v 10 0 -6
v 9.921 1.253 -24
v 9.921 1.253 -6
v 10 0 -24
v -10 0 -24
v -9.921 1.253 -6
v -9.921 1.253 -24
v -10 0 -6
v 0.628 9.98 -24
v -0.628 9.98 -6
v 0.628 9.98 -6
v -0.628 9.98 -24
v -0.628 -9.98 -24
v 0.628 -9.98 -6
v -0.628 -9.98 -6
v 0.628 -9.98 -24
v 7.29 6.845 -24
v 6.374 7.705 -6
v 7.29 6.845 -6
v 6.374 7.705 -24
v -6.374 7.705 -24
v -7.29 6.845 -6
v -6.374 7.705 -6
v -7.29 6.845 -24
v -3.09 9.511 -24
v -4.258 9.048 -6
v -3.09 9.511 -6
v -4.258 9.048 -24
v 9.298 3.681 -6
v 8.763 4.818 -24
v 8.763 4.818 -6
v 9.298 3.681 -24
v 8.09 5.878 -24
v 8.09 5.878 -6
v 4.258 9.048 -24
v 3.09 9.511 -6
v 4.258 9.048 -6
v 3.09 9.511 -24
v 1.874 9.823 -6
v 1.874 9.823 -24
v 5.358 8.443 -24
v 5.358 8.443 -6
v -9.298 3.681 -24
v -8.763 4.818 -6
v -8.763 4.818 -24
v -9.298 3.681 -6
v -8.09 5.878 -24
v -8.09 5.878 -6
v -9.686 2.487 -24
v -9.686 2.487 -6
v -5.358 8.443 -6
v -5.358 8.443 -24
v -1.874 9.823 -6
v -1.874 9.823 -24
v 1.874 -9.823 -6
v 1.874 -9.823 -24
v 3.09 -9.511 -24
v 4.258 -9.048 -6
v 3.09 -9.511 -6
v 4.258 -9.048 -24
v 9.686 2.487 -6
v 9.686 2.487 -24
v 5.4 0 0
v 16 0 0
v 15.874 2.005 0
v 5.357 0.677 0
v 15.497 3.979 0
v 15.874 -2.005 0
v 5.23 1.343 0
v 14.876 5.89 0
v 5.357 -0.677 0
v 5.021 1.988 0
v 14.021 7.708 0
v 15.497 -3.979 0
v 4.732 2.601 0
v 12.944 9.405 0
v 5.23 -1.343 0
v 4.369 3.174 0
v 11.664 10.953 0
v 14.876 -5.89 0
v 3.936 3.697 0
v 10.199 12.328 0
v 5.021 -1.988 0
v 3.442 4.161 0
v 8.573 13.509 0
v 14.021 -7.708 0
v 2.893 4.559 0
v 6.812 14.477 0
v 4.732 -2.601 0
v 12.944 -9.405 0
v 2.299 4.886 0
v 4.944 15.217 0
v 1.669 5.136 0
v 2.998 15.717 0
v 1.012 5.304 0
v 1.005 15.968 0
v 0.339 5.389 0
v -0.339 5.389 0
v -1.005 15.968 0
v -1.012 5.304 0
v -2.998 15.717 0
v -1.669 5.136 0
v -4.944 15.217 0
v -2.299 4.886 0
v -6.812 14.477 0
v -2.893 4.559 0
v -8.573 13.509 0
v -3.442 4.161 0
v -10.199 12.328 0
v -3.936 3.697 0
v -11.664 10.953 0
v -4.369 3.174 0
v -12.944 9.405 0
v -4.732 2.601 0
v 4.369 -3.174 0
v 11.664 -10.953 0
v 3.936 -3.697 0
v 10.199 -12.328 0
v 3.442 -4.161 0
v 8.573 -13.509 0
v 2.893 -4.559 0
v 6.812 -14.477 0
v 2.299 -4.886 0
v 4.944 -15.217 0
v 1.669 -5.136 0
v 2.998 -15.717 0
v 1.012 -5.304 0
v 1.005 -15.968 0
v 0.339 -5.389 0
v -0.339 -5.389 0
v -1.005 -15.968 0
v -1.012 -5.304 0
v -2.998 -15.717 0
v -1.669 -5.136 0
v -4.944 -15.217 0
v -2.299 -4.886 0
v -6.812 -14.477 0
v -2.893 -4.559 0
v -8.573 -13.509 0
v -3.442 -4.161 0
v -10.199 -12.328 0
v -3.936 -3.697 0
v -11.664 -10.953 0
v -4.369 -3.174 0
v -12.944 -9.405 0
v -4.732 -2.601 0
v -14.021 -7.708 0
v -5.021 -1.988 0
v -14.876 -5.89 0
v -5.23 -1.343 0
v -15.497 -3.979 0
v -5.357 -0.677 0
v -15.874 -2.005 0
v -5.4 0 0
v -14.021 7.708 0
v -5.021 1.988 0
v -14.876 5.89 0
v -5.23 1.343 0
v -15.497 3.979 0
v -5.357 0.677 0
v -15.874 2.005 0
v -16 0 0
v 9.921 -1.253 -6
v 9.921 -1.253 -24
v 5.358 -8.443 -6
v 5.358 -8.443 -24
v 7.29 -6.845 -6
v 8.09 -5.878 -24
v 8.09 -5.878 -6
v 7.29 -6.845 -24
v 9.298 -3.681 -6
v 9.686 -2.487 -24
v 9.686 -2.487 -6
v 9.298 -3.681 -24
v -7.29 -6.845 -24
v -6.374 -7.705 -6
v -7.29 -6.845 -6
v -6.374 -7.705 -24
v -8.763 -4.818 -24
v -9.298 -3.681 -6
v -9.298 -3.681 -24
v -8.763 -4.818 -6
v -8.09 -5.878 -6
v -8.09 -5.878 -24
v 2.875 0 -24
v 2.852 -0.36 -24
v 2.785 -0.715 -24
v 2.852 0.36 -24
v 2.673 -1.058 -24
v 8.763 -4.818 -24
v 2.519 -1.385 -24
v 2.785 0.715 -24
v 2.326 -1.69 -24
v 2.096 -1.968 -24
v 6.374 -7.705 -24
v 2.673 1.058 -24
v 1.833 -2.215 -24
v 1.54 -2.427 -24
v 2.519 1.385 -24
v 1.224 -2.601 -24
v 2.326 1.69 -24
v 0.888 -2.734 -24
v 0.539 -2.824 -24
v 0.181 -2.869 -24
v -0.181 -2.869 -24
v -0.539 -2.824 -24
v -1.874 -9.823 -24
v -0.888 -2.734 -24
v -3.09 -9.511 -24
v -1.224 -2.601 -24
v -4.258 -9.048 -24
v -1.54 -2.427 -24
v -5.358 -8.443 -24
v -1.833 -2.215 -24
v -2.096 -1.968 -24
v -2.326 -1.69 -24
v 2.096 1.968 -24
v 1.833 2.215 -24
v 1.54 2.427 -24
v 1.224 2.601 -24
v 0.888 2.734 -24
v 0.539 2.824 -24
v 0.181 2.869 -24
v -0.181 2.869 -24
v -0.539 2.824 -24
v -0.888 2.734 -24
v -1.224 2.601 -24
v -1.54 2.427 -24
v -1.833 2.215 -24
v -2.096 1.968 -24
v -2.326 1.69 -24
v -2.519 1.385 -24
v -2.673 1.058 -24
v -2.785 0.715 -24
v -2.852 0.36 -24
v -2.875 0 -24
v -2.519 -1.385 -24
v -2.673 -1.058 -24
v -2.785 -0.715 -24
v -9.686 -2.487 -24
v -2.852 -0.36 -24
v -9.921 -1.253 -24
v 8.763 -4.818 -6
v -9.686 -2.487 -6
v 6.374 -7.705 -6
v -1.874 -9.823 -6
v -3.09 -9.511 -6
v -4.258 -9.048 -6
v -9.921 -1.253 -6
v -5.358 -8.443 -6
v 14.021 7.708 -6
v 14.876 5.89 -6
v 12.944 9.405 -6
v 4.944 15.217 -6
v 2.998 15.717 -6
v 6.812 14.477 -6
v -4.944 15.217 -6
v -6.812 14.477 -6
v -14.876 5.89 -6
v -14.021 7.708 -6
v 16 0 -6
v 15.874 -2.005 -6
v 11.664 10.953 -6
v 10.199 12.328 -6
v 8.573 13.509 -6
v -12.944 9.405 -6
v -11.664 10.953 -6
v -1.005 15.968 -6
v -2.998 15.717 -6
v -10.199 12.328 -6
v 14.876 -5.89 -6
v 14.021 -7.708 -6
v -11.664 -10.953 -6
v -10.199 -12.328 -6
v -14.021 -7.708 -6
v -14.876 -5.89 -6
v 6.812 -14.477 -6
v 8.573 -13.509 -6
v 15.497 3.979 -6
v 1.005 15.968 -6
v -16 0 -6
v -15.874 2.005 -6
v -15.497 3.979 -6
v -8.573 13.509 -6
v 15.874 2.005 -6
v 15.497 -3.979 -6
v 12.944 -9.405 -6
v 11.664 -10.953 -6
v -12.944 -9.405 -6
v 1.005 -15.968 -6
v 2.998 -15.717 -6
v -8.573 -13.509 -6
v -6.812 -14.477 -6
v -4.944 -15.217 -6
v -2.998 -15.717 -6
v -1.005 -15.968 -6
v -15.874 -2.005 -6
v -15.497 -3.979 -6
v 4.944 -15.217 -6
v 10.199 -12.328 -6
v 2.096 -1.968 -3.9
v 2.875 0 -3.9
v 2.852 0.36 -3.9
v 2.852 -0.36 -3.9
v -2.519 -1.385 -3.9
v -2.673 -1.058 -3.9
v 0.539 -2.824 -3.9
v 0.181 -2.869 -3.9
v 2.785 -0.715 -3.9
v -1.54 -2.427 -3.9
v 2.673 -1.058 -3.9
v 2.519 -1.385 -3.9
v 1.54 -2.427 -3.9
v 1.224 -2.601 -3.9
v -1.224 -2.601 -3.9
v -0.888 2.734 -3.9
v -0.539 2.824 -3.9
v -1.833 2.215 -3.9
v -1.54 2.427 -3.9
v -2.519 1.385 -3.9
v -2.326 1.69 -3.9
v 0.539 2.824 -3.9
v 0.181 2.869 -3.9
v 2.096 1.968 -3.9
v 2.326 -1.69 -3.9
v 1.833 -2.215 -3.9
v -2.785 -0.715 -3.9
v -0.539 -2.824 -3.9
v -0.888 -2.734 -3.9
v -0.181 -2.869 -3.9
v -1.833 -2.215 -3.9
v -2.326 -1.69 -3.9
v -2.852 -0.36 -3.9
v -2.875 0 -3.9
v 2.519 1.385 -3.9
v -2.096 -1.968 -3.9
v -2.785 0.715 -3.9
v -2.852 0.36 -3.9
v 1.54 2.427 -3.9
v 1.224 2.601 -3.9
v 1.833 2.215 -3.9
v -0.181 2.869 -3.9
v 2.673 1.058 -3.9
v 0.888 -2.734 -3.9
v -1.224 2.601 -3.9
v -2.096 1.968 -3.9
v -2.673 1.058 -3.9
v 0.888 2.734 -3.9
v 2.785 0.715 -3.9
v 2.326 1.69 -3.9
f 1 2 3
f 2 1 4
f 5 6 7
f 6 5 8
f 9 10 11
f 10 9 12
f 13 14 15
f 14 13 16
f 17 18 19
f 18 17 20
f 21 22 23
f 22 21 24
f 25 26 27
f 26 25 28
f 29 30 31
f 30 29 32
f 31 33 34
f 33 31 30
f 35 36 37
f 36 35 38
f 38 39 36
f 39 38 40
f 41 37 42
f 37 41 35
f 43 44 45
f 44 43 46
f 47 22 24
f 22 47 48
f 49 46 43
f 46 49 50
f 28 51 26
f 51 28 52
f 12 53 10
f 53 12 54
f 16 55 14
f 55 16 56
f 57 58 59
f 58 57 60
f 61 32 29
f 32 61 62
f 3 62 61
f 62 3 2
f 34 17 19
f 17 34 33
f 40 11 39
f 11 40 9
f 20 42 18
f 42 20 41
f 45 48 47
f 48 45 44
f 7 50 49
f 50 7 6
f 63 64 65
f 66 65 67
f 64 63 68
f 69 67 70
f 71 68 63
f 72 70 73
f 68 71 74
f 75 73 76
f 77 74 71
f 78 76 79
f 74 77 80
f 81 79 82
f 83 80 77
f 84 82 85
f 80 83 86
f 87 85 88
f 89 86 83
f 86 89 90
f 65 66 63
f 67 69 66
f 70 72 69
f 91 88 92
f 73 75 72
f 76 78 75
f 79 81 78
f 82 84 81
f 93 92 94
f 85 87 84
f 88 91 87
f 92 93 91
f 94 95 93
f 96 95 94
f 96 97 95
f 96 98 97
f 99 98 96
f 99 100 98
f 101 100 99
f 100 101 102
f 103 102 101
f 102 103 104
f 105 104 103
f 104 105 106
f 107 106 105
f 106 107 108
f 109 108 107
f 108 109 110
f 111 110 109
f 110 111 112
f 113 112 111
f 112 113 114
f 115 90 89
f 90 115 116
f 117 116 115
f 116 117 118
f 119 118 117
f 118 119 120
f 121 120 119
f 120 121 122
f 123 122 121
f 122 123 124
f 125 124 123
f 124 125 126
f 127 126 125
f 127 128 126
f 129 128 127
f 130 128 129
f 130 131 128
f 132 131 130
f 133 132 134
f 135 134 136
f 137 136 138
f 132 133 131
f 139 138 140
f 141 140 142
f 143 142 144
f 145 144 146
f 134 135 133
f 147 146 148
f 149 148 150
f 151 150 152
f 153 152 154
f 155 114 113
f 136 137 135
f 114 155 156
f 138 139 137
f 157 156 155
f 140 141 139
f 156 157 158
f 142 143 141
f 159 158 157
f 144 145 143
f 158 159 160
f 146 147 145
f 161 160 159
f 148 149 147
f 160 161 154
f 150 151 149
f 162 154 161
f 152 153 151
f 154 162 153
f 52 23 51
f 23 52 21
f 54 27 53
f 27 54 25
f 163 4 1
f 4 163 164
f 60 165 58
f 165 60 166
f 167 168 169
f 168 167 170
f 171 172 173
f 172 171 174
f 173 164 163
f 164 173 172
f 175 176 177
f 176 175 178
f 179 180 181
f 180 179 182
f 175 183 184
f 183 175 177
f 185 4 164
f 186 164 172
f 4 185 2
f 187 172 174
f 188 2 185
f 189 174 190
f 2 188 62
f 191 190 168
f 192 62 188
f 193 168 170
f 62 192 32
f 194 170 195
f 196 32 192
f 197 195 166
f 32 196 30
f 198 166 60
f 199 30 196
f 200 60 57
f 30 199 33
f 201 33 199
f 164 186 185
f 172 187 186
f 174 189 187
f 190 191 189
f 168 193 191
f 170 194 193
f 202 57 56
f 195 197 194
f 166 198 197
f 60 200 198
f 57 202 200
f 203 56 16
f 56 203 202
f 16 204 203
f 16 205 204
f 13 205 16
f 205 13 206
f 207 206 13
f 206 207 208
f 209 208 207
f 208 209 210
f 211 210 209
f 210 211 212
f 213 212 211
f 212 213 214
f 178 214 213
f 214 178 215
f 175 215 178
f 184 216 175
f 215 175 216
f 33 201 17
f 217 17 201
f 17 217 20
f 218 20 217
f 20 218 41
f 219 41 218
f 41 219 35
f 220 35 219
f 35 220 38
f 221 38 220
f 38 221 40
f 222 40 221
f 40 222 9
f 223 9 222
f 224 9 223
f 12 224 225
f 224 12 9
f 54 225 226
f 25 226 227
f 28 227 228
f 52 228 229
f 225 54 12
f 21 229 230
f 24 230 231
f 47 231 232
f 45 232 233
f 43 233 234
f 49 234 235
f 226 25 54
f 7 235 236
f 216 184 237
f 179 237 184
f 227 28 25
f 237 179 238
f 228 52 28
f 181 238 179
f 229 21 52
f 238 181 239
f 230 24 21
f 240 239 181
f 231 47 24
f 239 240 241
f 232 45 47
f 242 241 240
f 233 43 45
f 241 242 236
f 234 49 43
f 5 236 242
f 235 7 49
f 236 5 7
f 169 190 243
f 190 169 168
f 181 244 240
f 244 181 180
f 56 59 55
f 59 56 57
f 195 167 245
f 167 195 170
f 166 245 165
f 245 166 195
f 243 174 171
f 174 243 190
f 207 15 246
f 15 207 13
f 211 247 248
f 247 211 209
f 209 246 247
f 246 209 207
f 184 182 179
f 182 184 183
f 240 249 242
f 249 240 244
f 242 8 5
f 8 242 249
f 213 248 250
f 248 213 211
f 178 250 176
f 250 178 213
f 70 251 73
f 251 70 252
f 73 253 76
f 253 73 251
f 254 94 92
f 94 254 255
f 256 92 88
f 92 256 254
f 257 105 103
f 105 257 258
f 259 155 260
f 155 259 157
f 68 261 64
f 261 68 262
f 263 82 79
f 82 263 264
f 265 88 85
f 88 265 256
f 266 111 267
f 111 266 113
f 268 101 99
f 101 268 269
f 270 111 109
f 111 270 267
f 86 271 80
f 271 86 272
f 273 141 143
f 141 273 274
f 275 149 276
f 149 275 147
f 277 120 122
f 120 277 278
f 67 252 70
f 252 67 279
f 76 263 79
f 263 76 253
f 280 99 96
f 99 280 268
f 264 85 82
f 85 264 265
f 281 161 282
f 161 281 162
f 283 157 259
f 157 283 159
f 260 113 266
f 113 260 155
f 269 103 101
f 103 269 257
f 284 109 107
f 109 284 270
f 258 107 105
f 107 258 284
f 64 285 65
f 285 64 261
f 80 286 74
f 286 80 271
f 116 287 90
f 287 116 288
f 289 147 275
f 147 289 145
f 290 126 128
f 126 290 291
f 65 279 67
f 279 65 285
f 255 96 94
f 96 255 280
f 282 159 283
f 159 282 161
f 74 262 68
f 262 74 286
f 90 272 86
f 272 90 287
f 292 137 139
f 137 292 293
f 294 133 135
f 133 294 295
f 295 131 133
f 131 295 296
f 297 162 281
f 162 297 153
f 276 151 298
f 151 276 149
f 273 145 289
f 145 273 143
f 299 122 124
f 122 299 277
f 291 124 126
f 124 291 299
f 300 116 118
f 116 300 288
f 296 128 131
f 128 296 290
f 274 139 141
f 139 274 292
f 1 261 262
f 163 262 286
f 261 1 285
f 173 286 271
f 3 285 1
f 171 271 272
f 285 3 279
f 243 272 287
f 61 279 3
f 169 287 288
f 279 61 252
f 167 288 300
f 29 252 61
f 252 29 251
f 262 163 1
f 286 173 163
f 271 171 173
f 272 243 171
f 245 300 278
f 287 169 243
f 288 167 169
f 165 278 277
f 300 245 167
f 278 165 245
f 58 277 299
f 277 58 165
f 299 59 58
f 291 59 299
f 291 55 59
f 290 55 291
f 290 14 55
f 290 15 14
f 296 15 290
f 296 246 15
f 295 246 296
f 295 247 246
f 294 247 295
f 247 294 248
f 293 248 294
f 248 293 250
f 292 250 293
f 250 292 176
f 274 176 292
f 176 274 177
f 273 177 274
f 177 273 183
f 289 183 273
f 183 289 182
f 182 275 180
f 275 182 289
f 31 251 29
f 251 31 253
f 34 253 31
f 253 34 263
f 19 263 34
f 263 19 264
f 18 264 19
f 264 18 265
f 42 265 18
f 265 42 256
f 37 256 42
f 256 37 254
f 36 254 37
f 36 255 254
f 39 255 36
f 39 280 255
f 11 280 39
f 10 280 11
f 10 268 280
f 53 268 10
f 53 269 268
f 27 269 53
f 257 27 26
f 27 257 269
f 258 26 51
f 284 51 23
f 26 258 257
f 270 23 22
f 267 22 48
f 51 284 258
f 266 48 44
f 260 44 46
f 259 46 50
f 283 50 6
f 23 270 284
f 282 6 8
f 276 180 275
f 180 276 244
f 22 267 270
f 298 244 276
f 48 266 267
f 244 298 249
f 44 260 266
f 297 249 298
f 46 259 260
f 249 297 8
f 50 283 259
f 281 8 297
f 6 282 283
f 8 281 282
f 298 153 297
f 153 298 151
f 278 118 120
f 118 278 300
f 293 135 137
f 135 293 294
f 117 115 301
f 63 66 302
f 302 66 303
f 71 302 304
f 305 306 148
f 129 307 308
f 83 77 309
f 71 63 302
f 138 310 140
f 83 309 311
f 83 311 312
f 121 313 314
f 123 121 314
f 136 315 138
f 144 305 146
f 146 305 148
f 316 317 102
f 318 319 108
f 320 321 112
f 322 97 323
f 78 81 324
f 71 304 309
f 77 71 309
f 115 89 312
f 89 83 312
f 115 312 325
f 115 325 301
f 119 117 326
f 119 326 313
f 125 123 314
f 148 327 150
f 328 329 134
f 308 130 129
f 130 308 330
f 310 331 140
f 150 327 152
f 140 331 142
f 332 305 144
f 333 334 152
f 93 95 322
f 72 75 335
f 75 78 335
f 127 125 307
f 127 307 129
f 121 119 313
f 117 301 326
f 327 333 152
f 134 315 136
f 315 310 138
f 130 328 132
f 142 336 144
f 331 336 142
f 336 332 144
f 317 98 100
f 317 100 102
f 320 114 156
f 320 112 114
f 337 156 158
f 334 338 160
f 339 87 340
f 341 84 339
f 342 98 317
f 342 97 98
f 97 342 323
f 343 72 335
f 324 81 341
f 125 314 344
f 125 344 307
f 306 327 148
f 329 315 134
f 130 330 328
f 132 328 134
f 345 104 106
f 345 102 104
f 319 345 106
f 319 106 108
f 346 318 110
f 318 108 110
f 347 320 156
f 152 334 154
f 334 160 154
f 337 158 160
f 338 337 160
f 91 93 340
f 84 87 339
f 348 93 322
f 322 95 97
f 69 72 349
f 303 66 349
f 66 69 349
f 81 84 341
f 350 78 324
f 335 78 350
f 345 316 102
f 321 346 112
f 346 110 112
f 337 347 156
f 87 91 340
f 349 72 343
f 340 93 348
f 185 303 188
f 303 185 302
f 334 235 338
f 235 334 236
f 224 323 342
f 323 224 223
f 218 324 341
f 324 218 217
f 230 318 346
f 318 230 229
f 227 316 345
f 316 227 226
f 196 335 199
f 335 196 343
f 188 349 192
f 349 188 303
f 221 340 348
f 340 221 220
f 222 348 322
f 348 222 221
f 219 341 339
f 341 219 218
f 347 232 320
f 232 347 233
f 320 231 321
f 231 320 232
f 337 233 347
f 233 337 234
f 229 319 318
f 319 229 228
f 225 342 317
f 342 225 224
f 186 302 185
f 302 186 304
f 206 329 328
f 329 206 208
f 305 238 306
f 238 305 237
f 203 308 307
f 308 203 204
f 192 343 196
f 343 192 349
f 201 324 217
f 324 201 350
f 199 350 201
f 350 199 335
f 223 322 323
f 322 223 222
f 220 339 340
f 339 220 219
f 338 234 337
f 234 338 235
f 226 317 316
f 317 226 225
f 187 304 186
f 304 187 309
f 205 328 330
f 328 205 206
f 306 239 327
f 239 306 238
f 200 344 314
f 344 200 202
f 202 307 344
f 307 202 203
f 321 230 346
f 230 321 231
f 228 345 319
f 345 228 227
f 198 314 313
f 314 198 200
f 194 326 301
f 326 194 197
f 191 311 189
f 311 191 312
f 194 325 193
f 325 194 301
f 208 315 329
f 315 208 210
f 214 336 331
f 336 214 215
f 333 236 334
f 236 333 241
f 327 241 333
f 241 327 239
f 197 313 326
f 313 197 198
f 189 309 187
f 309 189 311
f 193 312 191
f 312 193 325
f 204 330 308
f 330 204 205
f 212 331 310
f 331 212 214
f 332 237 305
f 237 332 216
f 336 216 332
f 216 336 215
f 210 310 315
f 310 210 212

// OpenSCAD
$fn = 50;


difference() {
	union() {
		translate(v = [0, 0, -24.0000000000]) {
			cylinder(h = 24, r = 10.0000000000);
		}
		translate(v = [0, 0, -6.0000000000]) {
			cylinder(h = 6, r = 16.0000000000);
		}
	}
	union() {
		translate(v = [0, 0, 0]) {
			rotate(a = [0, 0, 0]) {
				difference() {
					union() {
						#translate(v = [0, 0, -24.0000000000]) {
							cylinder(h = 24, r = 2.6000000000);
						}
						#translate(v = [0, 0, -3.9000000000]) {
							cylinder(h = 3.9000000000, r1 = 2.8750000000, r2 = 5.4000000000);
						}
						#translate(v = [0, 0, -24.0000000000]) {
							cylinder(h = 24, r = 2.8750000000);
						}
						#translate(v = [0, 0, -24.0000000000]) {
							cylinder(h = 24, r = 2.6000000000);
						}
					}
					union();
				}
			}
		}
	}
}
